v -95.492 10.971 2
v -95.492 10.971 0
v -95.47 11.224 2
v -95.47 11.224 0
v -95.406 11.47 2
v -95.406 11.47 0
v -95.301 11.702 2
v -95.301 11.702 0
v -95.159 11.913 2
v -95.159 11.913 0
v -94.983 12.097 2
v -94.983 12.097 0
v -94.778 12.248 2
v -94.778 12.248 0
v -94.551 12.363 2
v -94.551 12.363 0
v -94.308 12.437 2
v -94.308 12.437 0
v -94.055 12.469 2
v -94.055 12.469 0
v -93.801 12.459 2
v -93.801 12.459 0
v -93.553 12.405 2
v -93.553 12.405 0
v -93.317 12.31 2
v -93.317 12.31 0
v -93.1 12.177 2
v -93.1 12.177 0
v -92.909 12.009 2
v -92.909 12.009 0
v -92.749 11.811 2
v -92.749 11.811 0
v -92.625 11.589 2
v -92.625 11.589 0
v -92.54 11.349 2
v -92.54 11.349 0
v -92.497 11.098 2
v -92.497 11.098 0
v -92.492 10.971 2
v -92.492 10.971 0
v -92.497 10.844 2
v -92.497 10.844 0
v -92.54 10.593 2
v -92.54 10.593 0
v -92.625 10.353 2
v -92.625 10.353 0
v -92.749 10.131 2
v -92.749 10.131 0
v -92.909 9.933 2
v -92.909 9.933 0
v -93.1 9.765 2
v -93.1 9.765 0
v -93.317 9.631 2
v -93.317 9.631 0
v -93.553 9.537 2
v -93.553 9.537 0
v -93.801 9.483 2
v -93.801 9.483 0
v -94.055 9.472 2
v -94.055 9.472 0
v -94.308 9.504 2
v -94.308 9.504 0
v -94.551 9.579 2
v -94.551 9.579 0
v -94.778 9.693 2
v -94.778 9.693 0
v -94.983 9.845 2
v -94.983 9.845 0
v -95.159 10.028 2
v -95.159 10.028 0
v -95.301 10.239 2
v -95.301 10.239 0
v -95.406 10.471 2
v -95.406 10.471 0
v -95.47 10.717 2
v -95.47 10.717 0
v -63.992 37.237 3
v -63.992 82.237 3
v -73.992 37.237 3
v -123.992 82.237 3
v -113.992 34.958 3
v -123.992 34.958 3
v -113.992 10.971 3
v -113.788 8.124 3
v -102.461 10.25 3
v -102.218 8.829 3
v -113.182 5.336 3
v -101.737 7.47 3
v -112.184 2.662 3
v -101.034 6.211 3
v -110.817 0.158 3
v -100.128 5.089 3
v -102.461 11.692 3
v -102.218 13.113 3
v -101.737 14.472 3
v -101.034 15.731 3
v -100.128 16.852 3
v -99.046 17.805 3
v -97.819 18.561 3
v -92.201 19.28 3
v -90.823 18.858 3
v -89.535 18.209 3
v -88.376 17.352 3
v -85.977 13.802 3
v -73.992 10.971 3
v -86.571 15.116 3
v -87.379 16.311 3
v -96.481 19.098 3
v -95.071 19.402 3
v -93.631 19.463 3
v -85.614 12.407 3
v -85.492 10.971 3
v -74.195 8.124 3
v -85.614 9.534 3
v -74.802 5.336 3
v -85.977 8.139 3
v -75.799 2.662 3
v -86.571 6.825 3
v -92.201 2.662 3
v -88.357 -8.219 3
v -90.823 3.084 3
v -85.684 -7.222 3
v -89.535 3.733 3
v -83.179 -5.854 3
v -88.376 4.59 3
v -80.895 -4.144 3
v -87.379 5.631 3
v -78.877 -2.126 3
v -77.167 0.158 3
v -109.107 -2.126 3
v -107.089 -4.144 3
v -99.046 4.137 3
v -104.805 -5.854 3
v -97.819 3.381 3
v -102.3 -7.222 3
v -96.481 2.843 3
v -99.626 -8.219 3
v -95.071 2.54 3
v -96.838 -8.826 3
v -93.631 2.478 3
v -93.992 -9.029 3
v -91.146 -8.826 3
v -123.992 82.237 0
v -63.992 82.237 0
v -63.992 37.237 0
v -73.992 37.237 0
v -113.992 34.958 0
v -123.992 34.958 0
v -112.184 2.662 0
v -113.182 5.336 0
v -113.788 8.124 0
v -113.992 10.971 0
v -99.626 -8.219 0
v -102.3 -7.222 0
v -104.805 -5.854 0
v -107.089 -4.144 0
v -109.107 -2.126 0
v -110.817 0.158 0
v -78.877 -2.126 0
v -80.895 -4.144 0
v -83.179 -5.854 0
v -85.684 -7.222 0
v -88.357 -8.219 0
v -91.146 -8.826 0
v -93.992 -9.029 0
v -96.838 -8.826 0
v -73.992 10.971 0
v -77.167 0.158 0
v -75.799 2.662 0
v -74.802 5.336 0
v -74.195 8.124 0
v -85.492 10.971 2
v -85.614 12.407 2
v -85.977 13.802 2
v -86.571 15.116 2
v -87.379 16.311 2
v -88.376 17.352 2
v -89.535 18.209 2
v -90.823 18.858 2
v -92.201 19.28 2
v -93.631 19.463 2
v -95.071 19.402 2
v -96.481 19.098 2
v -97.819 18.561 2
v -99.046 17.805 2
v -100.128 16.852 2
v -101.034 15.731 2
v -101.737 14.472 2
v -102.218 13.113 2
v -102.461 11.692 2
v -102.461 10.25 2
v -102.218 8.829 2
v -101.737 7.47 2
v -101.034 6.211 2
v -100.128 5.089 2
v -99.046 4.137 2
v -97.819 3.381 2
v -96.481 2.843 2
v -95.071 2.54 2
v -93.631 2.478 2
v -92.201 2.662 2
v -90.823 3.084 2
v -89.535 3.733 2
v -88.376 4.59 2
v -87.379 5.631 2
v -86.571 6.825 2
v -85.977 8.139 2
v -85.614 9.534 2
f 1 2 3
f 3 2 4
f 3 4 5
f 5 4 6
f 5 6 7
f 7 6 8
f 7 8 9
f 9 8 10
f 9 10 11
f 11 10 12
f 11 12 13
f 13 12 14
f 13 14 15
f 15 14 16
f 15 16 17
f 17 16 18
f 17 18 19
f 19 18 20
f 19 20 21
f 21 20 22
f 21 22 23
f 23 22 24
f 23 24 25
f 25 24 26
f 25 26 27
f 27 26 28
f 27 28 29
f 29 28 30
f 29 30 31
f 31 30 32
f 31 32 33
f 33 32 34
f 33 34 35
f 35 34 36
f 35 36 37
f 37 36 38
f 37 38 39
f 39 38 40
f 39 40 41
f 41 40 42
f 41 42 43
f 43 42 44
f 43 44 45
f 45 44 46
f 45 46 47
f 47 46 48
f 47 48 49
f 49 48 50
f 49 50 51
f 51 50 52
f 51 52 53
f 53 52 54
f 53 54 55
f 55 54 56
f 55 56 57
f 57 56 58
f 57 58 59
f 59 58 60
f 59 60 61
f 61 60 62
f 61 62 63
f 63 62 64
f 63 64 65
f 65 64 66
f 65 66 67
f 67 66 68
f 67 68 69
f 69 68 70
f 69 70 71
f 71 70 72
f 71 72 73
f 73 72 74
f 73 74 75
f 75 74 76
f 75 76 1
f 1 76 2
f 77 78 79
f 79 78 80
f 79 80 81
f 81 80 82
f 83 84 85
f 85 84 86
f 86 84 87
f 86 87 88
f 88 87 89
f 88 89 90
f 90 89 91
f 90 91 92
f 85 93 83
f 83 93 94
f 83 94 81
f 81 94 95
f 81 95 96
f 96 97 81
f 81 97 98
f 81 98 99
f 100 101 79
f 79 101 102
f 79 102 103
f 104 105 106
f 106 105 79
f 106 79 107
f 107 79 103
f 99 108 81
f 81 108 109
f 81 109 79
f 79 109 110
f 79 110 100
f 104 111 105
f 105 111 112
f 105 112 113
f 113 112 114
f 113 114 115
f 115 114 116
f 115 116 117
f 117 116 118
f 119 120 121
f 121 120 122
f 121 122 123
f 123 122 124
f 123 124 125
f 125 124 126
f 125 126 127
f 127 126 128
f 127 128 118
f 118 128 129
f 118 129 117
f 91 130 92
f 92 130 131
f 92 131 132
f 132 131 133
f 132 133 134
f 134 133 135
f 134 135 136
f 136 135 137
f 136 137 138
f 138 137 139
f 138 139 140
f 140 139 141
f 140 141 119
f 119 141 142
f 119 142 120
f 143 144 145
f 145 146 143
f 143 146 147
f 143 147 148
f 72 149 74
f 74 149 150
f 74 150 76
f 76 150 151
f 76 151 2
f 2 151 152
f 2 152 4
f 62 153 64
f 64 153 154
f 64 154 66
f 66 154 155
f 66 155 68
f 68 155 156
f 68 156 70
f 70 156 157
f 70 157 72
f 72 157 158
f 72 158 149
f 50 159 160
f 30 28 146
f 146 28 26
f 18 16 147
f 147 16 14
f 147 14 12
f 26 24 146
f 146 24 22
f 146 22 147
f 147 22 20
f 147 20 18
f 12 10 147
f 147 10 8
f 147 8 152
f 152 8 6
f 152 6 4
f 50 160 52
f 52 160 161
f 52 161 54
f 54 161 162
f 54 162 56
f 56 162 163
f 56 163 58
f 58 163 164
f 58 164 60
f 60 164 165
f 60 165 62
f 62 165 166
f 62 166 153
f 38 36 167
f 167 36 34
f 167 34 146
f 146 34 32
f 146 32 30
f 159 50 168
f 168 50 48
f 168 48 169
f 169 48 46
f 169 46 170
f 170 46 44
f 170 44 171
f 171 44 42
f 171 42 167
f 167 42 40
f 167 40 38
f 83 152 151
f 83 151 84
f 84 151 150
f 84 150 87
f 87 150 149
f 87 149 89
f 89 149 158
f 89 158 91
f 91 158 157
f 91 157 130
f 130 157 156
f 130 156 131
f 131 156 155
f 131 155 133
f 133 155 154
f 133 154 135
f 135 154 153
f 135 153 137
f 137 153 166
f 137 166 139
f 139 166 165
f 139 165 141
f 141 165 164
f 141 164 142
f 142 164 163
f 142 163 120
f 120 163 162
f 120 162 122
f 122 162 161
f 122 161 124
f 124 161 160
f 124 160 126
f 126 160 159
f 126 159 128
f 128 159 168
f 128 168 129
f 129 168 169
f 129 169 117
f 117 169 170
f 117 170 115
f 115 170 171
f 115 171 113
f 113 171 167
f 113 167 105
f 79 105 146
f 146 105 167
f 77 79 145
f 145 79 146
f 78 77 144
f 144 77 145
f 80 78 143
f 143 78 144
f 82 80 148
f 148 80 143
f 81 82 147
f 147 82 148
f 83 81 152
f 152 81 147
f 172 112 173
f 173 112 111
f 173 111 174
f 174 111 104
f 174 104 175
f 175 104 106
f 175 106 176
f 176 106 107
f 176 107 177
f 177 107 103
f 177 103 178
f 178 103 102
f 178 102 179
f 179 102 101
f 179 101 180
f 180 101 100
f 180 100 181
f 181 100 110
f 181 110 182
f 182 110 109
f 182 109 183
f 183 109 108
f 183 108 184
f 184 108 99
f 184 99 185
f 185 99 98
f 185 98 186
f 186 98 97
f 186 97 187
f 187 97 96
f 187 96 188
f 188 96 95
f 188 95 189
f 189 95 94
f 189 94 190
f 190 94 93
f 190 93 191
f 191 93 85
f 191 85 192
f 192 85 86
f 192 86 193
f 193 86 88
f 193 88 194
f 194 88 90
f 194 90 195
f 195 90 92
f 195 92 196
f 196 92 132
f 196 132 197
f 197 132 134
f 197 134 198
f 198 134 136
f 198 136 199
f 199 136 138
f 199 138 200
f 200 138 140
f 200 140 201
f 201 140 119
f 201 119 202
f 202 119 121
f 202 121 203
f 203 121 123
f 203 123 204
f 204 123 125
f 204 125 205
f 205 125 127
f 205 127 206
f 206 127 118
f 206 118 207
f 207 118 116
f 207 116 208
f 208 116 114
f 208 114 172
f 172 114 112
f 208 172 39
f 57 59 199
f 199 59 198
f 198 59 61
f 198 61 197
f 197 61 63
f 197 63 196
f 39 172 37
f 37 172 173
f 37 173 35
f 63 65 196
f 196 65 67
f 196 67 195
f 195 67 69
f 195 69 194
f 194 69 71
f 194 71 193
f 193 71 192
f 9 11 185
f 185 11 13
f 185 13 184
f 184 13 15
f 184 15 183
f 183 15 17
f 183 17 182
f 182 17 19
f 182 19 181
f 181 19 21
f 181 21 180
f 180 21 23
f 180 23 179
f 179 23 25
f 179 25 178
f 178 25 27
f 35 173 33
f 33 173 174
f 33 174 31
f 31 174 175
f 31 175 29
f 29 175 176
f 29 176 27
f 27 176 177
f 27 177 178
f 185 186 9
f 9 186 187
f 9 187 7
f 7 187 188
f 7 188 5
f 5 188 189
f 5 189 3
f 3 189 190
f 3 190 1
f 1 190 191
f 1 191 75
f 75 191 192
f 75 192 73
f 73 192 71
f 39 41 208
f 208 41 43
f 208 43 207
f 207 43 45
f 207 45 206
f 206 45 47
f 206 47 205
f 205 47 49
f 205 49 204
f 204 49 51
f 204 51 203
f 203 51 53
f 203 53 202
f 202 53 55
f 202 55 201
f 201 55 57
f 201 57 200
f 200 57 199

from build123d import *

# Parameters (mm, degrees)
CROQUIS1_R              = 1.5
SALIENTE_EXTRUIR1_DEPTH = 3
CROQUIS2_R              = 8.5
CORTAR_EXTRUIR1_DEPTH   = 1


with BuildPart() as part:
    # Croquis1 → Saliente-Extruir1 (new body)
    with BuildSketch(Plane.XY):
        with BuildLine():
            Line((-113.991811363, 10.970788205), (-113.991811363, 34.958108792))
            Line((-113.991811363, 34.958108792), (-123.991811363, 34.958108792))
            Line((-123.991811363, 34.958108792), (-123.991811363, 82.236637471))
            Line((-123.991811363, 82.236637471), (-63.991811363, 82.236637471))
            Line((-63.991811363, 82.236637471), (-63.991811363, 37.236637471))
            Line((-63.991811363, 37.236637471), (-73.991811363, 37.236637471))
            Line((-73.991811363, 37.236637471), (-73.991811363, 10.970788205))
            ThreePointArc((-73.991811363, 10.970788205), (-93.991811363, -9.029211795), (-113.991811363, 10.970788205))
        make_face()
        with Locations((-93.991811363, 10.970788205)):
            Circle(CROQUIS1_R, mode=Mode.SUBTRACT)
    extrude(amount=SALIENTE_EXTRUIR1_DEPTH)

    # Croquis2 → Cortar-Extruir1 (cut)
    with BuildSketch(Plane.XY.offset(3)):
        with Locations((-93.991811363, 10.970788205)):
            Circle(CROQUIS2_R)
    extrude(amount=-CORTAR_EXTRUIR1_DEPTH, mode=Mode.SUBTRACT)


solid = part.part
